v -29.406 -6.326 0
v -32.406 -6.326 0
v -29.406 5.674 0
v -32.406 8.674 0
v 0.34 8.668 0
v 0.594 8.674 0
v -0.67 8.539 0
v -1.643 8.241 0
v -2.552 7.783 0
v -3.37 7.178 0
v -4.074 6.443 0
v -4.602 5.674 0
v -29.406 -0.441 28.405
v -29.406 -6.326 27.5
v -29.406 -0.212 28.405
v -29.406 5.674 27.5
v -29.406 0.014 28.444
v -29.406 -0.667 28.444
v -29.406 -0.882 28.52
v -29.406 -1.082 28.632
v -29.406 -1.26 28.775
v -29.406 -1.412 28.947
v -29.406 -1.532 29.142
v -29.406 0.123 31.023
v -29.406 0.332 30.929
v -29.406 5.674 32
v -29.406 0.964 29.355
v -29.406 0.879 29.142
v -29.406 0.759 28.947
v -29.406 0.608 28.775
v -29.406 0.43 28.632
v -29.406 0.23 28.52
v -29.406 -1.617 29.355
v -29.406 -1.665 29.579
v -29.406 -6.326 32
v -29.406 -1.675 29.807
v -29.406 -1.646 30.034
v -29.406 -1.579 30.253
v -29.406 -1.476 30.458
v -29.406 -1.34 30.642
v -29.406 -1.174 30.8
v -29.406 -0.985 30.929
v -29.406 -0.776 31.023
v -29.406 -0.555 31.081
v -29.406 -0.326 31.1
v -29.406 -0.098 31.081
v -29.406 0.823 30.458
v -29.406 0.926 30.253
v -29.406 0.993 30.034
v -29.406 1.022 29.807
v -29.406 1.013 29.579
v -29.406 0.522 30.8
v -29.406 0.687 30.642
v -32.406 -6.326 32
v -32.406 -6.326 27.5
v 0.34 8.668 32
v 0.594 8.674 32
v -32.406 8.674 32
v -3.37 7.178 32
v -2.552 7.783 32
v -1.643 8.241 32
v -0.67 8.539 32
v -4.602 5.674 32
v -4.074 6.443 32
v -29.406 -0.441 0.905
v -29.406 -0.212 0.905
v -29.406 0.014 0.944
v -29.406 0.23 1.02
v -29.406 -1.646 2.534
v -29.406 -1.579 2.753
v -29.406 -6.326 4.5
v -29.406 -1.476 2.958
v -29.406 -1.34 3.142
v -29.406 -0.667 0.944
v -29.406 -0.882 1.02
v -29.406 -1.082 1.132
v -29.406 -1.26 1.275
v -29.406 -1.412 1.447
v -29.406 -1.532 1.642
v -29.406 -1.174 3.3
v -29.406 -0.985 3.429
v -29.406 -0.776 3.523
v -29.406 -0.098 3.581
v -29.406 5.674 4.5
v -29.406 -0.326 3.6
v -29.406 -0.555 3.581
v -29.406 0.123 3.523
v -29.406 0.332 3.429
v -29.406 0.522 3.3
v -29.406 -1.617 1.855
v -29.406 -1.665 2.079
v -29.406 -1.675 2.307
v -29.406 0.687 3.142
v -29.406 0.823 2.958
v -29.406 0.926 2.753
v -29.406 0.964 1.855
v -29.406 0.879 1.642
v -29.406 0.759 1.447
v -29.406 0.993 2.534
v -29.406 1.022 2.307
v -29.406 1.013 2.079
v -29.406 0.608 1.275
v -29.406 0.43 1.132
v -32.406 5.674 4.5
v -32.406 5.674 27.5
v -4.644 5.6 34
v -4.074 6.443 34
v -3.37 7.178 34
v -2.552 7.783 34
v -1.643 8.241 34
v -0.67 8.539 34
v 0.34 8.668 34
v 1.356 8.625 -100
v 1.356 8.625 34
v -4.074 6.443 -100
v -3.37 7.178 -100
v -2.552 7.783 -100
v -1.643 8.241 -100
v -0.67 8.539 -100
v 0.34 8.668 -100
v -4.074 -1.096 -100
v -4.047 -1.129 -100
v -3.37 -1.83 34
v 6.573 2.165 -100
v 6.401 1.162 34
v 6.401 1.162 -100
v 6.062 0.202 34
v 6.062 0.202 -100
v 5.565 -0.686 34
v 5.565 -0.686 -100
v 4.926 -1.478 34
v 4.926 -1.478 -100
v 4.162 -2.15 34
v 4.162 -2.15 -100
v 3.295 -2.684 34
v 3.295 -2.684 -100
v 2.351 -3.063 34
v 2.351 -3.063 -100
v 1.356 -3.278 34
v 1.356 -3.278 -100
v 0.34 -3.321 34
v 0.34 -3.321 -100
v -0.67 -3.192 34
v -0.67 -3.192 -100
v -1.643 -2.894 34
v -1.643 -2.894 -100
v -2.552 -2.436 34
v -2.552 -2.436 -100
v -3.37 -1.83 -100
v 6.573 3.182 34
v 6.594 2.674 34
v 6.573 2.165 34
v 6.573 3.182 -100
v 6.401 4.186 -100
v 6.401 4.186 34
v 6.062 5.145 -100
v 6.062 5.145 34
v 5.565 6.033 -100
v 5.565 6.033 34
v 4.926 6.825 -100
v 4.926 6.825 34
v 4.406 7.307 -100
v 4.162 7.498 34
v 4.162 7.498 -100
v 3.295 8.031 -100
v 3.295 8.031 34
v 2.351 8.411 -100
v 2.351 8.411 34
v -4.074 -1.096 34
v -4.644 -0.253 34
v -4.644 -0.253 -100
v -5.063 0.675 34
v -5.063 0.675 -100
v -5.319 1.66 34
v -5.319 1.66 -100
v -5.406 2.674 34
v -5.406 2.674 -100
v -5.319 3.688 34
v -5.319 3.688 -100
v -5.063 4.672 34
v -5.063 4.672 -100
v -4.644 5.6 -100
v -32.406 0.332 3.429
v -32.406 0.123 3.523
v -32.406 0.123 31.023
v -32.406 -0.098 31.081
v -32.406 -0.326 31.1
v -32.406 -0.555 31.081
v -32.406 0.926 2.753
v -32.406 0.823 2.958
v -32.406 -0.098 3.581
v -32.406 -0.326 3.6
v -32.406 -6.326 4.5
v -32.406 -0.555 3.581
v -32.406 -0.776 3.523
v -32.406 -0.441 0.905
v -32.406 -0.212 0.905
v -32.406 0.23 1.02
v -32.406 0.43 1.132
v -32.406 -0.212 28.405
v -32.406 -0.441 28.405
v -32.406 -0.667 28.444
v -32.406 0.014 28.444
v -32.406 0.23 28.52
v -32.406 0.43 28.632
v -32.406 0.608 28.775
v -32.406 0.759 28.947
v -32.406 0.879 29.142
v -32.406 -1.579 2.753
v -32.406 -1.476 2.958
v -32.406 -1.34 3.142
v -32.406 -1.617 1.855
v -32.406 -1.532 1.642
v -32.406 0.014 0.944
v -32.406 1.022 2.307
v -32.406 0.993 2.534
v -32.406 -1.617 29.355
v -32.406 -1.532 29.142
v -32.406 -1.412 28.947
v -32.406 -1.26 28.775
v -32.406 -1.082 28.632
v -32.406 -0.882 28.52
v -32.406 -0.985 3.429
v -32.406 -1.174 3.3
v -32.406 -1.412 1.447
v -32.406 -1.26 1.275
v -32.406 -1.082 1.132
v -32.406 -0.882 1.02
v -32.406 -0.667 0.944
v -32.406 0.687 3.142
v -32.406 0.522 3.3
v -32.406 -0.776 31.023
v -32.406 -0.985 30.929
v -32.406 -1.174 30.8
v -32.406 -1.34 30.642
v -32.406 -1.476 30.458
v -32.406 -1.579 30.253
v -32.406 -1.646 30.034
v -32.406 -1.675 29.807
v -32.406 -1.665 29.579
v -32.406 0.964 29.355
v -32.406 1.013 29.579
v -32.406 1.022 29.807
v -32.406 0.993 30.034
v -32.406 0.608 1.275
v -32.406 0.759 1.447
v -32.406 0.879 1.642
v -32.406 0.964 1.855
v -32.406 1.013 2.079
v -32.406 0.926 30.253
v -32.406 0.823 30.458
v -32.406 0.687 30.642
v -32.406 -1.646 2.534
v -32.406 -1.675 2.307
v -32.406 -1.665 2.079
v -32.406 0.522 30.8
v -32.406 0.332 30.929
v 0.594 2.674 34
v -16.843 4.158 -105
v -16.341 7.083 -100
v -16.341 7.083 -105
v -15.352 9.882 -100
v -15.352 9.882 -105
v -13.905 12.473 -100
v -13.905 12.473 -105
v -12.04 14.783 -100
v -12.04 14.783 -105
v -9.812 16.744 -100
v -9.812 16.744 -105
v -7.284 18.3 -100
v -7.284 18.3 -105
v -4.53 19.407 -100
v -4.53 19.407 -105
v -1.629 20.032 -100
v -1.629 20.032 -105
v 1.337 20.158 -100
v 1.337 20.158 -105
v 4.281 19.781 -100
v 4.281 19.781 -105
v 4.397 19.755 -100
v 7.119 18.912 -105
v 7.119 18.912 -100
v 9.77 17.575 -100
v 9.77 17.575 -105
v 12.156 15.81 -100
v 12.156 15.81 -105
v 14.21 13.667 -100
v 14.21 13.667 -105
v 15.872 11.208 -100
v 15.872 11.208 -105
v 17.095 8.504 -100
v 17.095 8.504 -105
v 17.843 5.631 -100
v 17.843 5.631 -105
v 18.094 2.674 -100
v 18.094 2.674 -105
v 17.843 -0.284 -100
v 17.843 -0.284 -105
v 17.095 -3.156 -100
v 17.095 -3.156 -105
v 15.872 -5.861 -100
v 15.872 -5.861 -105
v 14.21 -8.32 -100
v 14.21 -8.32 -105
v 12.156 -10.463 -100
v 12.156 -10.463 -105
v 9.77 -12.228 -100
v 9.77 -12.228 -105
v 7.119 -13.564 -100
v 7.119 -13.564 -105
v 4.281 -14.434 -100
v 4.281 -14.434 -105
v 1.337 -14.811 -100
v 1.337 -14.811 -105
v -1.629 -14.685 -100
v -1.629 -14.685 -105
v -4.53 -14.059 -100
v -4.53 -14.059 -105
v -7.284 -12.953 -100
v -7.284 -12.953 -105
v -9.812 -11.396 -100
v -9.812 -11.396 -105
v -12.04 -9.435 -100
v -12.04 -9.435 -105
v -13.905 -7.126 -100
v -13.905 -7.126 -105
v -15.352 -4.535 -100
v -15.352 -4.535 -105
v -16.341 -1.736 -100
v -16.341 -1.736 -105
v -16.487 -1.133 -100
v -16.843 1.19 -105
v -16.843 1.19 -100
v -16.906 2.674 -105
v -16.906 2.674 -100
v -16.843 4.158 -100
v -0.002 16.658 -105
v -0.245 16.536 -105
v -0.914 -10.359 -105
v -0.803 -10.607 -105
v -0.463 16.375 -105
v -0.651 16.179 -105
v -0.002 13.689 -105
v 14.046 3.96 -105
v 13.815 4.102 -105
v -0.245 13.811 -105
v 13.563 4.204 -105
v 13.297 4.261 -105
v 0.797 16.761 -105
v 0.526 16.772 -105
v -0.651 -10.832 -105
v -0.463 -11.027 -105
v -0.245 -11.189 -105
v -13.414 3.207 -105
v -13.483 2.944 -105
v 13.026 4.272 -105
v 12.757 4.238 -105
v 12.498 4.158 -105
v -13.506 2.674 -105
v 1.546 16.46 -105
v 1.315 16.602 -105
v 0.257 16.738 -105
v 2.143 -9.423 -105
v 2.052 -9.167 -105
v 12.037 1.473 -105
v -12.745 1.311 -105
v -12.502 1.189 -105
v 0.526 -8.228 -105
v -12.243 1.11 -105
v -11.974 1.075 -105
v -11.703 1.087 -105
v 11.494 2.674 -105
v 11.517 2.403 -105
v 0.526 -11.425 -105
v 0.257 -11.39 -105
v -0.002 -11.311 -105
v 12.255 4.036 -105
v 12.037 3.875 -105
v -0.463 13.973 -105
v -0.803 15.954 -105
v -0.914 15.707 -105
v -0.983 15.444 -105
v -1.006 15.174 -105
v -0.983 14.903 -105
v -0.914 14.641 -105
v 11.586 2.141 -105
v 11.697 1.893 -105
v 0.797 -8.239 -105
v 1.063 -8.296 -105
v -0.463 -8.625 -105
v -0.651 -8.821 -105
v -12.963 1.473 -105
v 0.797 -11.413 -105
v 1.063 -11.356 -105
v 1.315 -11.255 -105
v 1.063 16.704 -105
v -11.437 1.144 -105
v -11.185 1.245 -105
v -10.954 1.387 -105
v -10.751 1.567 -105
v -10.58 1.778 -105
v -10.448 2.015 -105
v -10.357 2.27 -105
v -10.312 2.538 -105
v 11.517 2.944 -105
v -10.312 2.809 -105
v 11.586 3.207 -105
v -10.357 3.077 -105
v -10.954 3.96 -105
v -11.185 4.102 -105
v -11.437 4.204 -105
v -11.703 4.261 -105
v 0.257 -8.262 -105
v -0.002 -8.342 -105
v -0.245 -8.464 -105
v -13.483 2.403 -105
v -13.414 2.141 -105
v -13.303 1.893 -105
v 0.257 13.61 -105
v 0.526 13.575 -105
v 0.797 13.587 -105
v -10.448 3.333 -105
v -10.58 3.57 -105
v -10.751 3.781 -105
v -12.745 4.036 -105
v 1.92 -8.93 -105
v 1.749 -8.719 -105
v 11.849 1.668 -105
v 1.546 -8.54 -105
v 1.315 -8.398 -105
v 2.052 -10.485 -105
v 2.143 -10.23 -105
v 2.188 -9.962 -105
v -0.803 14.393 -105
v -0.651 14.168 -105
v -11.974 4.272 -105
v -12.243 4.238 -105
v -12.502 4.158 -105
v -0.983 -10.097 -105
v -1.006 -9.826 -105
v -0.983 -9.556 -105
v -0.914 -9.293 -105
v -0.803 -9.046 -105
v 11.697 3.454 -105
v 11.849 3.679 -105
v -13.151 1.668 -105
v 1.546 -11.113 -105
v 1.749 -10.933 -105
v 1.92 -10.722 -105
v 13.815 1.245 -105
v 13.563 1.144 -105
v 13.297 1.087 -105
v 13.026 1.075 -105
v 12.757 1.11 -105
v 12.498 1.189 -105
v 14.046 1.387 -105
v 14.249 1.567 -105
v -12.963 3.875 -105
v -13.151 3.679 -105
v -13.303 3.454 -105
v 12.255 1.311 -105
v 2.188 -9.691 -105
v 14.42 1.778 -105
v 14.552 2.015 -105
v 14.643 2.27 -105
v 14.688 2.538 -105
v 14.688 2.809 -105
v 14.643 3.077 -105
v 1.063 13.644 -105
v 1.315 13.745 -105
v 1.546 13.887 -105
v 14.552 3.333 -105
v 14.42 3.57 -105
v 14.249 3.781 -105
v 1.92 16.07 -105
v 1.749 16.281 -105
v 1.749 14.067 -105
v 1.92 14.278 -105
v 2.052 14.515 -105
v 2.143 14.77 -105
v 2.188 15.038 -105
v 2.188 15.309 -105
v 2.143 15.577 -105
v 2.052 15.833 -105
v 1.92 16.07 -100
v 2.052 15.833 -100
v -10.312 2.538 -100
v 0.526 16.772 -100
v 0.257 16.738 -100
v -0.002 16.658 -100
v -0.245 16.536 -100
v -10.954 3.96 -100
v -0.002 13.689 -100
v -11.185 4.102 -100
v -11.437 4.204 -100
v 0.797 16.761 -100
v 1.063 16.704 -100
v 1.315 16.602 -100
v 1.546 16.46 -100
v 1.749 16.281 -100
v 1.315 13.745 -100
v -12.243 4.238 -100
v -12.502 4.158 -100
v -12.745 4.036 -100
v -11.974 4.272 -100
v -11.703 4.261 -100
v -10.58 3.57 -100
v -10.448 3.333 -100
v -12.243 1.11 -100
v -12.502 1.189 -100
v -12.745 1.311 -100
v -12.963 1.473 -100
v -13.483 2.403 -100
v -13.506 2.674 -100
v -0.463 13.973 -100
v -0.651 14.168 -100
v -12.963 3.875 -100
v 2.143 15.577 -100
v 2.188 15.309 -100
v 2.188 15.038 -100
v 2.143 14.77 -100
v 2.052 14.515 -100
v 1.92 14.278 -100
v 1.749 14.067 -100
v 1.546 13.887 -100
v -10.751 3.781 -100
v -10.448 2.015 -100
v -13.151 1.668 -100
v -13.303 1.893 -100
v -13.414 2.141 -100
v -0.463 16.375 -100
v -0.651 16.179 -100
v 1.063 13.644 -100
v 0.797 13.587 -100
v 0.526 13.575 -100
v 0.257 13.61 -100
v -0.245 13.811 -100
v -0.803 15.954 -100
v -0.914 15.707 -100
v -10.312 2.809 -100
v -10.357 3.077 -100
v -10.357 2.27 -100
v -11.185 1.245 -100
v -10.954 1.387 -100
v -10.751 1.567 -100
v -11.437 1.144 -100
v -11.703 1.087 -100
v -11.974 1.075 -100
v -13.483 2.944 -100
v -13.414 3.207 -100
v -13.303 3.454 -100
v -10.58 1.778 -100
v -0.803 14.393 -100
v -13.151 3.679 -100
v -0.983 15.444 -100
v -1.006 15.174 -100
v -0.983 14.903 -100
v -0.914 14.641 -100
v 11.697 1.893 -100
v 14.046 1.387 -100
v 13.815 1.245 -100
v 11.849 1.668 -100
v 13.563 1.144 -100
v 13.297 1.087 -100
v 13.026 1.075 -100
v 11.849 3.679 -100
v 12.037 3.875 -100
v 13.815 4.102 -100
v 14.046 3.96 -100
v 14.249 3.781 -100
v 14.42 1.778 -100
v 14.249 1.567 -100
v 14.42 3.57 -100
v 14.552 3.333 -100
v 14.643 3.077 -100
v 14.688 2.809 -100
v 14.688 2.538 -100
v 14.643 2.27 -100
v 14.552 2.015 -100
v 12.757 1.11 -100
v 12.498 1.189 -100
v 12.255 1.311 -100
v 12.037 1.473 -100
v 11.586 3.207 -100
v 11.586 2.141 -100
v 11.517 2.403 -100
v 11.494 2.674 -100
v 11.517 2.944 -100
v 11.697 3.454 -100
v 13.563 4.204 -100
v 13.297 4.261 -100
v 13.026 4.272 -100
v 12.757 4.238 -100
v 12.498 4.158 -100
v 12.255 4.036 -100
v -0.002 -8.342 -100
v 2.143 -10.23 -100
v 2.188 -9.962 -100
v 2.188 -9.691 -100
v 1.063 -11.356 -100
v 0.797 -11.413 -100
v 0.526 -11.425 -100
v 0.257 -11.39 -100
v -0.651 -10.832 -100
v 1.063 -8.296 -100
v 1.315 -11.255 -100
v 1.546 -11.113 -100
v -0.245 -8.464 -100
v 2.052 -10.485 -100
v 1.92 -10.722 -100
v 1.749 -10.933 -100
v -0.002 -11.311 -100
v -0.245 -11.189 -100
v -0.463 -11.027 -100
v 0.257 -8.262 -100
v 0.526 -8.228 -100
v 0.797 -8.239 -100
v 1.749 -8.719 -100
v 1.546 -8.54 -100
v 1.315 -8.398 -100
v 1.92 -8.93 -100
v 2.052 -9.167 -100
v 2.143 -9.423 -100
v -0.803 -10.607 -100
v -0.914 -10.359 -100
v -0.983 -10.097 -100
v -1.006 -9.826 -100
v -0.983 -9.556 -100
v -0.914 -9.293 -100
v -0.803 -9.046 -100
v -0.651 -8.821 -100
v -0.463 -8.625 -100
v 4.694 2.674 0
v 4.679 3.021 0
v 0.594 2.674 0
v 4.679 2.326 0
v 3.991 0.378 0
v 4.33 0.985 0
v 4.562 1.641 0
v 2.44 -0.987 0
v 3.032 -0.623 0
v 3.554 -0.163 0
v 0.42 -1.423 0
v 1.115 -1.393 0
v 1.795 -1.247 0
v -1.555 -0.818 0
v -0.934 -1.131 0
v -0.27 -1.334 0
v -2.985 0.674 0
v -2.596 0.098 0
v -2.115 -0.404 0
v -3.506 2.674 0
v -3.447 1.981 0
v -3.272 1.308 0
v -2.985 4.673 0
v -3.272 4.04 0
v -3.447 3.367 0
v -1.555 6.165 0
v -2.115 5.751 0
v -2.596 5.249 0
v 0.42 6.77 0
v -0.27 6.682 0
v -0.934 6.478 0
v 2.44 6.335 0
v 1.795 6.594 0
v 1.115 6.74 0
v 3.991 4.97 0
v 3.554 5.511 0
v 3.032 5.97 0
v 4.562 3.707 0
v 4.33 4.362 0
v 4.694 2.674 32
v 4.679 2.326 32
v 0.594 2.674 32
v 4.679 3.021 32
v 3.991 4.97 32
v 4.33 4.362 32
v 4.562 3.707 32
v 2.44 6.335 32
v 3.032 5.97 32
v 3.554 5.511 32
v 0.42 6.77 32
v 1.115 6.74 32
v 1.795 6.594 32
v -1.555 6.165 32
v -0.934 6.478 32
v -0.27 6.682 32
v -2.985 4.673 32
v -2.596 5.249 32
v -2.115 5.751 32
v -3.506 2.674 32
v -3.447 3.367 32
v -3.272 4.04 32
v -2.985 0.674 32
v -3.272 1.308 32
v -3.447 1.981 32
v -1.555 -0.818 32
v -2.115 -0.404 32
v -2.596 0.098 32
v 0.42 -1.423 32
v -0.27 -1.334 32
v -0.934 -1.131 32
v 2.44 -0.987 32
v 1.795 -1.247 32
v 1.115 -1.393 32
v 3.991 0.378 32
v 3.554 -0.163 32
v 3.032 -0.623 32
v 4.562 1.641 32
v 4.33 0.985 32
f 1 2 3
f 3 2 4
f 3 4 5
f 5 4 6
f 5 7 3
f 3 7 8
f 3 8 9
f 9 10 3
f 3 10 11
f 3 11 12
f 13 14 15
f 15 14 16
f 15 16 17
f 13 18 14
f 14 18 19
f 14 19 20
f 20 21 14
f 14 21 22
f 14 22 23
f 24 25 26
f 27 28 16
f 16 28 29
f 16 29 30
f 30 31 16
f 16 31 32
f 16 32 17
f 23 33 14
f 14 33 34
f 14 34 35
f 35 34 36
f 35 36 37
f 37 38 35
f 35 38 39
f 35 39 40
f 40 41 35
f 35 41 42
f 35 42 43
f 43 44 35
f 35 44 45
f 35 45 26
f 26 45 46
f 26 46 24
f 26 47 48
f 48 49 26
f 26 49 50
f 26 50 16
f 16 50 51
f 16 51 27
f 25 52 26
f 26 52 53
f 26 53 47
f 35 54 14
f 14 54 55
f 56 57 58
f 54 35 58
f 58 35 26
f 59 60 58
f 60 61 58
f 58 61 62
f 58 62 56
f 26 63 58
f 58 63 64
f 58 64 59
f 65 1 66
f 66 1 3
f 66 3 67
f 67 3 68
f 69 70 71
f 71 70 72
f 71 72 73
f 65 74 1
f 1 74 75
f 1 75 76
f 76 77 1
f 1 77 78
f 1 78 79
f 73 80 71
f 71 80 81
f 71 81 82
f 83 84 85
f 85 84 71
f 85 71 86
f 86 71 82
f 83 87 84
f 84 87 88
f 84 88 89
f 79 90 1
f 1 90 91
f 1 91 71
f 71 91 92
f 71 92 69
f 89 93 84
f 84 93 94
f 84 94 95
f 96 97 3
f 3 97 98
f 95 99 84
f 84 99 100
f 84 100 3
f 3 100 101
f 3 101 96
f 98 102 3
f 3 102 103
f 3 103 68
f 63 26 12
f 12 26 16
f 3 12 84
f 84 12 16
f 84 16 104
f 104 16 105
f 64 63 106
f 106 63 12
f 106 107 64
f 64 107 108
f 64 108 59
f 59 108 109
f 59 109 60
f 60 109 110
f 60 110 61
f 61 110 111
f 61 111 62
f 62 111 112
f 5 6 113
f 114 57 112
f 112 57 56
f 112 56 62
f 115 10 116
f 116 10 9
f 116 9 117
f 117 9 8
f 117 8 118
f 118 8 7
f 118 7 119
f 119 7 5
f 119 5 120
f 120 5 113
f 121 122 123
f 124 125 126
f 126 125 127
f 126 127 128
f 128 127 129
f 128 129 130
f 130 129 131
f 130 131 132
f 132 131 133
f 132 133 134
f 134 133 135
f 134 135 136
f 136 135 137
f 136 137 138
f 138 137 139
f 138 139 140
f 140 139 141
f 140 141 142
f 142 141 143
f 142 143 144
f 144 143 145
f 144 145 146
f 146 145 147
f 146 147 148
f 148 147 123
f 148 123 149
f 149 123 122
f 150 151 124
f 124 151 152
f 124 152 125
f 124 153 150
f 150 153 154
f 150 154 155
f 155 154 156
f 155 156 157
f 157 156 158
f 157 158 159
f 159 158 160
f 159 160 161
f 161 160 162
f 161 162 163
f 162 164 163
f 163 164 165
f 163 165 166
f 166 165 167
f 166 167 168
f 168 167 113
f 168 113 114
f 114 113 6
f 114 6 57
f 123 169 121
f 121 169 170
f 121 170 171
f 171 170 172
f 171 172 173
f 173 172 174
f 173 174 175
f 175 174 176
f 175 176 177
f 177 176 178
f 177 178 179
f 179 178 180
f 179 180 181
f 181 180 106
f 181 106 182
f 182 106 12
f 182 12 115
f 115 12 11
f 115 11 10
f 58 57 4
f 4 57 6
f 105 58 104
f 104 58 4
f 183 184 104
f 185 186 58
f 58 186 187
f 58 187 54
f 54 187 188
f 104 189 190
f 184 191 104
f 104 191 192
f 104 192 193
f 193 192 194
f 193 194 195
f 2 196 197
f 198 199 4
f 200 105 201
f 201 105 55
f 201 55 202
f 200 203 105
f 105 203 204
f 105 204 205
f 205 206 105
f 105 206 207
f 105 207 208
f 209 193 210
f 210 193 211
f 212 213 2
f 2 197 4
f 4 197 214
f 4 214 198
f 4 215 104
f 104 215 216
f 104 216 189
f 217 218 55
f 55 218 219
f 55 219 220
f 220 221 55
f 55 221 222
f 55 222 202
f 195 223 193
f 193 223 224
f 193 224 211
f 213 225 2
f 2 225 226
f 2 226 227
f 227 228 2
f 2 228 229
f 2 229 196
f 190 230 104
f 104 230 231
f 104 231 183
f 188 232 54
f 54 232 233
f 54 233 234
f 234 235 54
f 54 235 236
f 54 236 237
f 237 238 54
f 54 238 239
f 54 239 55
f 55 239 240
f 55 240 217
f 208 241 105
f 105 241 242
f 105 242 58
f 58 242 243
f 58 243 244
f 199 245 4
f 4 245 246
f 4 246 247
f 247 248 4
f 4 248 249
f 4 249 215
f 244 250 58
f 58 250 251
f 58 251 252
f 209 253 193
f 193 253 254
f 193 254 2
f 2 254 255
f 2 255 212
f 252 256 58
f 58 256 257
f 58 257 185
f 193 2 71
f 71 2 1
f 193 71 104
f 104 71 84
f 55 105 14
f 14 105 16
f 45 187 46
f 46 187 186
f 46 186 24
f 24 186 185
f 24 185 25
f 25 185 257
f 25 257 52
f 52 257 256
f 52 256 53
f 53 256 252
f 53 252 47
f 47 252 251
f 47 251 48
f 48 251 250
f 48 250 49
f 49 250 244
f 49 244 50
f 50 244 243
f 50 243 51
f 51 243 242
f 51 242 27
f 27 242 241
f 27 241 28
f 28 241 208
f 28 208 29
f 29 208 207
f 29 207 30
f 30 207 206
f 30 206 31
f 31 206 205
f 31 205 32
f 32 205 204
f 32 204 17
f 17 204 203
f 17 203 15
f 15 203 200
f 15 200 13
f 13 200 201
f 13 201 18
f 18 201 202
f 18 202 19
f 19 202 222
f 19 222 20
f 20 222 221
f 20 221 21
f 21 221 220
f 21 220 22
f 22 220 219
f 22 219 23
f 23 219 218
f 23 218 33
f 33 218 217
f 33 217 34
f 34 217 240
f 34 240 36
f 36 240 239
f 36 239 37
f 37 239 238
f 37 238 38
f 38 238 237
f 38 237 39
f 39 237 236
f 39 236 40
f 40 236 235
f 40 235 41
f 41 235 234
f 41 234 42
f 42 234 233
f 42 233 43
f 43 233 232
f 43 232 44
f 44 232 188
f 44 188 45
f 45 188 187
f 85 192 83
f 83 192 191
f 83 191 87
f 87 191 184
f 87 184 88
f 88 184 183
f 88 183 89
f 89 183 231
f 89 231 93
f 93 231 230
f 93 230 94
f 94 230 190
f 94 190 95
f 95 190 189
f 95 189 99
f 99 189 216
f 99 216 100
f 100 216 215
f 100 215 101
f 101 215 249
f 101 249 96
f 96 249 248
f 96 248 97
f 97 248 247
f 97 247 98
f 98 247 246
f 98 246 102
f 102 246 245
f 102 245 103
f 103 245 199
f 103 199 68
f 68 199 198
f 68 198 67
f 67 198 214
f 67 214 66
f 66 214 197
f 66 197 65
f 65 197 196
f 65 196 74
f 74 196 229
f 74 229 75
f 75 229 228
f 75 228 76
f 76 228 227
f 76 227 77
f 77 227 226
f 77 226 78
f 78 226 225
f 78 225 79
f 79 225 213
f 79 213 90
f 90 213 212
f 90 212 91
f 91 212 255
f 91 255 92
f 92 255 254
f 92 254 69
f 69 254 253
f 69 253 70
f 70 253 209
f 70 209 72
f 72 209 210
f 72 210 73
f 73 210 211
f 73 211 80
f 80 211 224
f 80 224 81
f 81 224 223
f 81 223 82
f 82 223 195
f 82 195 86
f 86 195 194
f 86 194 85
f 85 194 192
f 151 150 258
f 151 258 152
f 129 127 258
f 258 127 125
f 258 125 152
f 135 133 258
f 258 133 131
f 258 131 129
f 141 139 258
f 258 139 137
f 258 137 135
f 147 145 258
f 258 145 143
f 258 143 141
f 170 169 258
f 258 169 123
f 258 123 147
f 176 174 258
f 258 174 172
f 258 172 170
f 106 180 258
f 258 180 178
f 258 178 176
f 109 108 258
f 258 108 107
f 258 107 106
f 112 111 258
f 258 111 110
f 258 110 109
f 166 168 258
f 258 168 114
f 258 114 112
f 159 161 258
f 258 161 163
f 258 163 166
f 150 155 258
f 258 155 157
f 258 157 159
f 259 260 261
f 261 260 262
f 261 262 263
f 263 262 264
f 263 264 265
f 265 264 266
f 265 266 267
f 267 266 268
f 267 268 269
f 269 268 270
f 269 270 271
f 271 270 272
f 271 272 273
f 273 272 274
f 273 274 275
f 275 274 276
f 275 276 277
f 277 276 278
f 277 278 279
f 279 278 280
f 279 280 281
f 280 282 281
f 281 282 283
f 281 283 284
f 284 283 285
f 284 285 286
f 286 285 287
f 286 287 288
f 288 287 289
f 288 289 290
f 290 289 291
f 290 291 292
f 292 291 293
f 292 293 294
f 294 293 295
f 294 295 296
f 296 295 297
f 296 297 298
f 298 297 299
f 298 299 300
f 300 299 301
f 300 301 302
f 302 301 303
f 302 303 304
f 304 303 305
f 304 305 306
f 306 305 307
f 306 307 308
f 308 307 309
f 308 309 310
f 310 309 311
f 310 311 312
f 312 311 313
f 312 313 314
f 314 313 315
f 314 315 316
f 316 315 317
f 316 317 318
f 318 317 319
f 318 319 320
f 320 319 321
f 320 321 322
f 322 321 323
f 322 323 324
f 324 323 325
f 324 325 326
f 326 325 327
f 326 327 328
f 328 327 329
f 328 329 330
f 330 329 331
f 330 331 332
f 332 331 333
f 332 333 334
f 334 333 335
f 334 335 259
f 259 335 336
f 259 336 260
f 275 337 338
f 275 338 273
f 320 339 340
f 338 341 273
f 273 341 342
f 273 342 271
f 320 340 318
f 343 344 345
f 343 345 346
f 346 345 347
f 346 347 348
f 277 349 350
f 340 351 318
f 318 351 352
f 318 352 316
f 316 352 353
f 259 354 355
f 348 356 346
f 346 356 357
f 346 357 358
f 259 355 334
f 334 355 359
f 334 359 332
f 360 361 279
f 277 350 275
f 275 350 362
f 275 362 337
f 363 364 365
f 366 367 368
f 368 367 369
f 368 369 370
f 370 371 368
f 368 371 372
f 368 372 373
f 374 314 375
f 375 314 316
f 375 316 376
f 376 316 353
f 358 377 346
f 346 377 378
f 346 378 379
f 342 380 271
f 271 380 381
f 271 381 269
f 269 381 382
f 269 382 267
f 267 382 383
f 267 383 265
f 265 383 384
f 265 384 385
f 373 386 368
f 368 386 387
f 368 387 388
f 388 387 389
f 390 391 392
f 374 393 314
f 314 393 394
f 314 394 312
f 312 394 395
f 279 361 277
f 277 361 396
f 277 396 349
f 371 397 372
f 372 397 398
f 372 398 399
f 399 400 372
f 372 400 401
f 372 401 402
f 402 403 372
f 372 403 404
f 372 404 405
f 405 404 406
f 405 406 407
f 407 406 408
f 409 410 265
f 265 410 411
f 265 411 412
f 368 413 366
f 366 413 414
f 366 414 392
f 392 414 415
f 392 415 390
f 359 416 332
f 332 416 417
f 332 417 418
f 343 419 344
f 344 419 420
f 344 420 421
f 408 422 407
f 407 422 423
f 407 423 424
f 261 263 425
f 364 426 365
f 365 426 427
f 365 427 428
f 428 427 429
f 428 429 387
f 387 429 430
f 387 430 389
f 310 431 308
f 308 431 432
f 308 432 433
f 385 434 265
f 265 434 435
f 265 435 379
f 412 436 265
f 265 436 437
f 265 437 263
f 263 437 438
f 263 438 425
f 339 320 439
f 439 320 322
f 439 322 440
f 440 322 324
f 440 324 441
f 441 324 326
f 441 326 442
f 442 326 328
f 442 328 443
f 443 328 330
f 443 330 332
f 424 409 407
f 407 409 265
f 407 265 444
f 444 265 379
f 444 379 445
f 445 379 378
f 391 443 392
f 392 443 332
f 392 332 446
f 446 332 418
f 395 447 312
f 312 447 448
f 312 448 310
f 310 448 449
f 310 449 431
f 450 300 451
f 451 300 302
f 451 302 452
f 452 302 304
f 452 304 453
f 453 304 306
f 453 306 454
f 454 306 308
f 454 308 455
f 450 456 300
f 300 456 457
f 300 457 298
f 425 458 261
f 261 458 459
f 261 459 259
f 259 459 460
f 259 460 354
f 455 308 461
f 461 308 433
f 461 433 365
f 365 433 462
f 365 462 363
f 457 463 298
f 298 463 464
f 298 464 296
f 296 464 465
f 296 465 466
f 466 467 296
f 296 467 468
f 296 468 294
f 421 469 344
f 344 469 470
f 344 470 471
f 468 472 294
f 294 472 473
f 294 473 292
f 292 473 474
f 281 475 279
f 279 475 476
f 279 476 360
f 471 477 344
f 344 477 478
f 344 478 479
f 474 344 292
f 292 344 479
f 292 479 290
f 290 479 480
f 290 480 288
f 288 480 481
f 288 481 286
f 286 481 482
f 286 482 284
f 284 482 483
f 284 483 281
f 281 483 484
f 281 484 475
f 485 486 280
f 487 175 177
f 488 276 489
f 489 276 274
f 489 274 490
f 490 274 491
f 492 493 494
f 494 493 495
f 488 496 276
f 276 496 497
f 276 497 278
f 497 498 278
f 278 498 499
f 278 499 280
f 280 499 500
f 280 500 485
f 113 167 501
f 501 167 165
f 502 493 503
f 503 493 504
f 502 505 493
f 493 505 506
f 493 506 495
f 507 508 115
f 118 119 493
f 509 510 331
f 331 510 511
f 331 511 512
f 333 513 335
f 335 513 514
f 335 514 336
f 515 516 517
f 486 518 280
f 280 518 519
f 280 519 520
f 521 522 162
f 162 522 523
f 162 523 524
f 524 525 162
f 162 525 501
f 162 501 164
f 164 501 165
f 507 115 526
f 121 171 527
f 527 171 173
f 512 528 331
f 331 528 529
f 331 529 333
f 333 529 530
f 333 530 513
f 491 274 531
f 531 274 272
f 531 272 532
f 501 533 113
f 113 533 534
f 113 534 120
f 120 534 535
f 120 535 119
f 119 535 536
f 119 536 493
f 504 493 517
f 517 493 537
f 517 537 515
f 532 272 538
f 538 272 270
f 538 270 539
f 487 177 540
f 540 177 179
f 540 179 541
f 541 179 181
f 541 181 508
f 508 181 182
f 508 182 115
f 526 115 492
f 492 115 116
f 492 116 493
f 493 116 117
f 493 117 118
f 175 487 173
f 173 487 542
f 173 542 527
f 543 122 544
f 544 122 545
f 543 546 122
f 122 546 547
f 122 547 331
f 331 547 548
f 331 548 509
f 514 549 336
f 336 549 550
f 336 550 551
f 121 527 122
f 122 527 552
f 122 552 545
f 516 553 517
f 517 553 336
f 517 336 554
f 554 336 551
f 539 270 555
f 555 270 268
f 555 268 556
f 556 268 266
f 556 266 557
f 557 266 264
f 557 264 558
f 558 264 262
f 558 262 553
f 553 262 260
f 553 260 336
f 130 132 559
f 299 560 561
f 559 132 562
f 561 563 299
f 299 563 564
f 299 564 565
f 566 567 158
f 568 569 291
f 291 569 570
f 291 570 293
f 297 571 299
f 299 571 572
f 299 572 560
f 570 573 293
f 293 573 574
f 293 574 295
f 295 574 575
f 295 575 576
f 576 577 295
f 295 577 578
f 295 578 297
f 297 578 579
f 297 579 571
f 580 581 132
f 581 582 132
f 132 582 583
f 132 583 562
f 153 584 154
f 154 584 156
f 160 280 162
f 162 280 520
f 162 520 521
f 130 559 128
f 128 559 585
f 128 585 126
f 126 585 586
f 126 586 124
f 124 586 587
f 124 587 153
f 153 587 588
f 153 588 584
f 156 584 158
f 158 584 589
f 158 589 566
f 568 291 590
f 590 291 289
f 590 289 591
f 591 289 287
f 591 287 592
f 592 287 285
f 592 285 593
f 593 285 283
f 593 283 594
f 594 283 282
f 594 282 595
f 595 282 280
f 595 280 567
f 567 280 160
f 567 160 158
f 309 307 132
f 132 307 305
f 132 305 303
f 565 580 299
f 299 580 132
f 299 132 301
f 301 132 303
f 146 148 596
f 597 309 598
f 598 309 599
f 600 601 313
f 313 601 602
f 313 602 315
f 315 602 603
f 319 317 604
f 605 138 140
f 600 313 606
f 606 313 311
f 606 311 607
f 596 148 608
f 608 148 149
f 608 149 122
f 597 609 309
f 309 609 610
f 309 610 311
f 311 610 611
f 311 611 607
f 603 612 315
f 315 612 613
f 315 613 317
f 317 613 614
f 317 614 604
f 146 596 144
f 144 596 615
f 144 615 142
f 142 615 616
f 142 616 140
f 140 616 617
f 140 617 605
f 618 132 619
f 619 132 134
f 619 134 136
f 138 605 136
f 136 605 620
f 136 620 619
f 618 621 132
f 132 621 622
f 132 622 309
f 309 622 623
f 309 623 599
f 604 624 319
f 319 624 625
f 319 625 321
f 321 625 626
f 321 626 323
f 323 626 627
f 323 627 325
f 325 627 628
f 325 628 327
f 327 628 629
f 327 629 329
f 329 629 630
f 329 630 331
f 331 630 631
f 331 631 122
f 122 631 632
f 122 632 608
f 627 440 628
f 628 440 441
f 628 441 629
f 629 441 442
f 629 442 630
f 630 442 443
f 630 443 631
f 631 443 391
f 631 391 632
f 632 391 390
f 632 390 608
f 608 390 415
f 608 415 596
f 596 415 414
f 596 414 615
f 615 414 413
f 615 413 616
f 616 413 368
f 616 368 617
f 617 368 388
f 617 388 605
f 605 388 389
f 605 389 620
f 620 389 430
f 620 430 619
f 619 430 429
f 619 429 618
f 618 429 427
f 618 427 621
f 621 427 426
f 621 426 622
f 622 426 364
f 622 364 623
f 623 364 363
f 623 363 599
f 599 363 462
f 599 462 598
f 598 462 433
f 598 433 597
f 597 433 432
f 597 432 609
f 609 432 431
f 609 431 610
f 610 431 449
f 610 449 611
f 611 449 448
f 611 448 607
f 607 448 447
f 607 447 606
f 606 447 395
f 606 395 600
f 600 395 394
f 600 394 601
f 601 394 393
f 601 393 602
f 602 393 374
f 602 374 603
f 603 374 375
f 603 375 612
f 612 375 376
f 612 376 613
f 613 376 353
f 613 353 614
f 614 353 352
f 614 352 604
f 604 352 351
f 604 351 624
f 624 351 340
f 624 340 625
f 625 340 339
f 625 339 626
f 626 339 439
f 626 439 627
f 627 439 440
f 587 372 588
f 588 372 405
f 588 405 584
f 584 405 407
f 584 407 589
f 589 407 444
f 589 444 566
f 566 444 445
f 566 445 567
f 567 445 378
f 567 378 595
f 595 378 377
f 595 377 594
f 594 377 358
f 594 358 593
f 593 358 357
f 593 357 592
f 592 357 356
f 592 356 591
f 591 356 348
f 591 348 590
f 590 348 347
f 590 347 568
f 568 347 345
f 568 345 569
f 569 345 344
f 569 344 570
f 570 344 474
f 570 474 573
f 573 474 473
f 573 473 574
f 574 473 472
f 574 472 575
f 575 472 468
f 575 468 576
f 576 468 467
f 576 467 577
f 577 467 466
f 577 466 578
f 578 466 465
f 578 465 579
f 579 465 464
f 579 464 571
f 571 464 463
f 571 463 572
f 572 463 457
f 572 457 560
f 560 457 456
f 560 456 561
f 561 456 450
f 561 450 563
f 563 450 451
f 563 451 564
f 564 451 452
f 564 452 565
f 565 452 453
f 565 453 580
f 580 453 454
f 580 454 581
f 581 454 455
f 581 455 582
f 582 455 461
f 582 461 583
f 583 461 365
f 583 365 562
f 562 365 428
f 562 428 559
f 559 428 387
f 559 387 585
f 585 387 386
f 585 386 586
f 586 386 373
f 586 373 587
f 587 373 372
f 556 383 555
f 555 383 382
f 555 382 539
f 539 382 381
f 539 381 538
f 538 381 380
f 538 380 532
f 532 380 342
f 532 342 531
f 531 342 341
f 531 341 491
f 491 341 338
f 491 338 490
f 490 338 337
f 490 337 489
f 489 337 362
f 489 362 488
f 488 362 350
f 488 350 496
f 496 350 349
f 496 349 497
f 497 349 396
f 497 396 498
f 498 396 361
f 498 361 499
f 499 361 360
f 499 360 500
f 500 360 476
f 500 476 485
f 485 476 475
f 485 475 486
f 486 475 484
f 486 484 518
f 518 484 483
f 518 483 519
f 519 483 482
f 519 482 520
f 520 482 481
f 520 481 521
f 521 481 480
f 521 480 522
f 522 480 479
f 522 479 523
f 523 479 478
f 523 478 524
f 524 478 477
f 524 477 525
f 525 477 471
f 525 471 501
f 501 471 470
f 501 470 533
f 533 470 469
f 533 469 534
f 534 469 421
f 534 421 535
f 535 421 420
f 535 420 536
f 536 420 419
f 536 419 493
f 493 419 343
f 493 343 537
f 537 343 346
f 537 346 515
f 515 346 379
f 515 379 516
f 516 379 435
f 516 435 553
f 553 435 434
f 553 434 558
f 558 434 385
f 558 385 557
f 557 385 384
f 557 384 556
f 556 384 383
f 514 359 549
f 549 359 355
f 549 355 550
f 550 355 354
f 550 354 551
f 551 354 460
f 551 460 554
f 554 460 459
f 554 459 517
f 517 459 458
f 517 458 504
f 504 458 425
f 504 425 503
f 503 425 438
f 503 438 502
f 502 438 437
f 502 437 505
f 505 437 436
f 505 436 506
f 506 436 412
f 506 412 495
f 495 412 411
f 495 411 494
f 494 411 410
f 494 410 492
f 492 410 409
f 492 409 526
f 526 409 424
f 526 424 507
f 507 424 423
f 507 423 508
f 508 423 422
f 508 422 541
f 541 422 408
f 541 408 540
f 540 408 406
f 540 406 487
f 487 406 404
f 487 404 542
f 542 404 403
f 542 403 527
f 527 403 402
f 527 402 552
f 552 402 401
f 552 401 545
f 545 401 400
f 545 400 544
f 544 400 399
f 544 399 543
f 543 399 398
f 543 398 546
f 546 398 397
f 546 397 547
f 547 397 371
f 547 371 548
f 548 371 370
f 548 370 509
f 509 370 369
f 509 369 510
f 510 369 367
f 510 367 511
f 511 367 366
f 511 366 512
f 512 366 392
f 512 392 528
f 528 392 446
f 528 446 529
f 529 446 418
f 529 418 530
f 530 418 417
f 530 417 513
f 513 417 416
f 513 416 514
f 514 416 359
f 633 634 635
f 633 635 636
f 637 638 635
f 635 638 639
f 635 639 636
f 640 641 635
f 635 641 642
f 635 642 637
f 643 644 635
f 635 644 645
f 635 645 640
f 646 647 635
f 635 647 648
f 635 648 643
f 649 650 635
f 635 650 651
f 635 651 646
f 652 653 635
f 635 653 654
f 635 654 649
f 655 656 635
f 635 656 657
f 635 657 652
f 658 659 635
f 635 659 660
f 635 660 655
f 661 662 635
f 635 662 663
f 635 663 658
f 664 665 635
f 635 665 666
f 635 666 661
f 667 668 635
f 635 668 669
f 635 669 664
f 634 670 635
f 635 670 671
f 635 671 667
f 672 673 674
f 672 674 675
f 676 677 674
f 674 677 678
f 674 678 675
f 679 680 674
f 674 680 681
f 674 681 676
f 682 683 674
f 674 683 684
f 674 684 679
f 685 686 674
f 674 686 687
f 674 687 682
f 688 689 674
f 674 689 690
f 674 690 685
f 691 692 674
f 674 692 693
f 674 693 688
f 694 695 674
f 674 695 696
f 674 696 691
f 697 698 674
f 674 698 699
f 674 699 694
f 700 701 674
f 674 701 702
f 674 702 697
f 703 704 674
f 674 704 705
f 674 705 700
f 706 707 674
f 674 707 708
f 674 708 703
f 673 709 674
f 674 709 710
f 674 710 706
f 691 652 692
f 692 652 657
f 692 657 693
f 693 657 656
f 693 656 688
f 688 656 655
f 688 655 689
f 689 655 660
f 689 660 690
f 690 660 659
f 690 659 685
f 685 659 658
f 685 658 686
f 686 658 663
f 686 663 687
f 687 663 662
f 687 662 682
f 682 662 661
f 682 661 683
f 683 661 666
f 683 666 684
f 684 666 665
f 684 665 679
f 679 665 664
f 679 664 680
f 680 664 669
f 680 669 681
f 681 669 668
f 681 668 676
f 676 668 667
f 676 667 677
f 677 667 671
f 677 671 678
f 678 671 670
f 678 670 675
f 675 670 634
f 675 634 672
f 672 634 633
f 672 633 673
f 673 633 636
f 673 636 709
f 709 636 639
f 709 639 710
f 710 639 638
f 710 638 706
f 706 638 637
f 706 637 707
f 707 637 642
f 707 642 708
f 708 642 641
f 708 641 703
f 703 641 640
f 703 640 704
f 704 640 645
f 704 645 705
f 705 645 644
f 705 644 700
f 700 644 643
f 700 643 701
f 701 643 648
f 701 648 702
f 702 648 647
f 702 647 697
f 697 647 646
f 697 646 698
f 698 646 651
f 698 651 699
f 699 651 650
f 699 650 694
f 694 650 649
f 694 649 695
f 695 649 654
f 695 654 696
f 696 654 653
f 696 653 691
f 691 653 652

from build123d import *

# Parameters (mm, degrees)
SKETCH_1_R          = 4.1
EXTRUDE_1_DEPTH     = 32
SKETCH_3_R          = 1.35
SKETCH_3_W          = 23
SKETCH_3_H          = 12
CUT_EXTRUDE_1_DEPTH = 5
SKETCH_5_R          = 6
EXTRUDE_2_DEPTH     = 2
SKETCH_6_R          = 6
EXTRUDE_3_DEPTH     = 100
SKETCH_7_R          = 17.5
EXTRUDE_4_DEPTH     = 5
SKETCH_9_R          = 1.6
CUT_EXTRUDE_3_DEPTH = 140


with BuildPart() as part:
    # 草图1 → 凸台-拉伸1 (new body)
    with BuildSketch(Plane.XY):
        with BuildLine():
            Line((-32.405771928, 8.673637409), (-5.405771928, 8.673637409))
            Line((-5.405771928, 8.673637409), (0.594228072, 8.673637409))
            ThreePointArc((0.594228072, 8.673637409), (3.594228072, -2.522515014), (-4.601924351, 5.673637409))
            Line((-4.601924351, 5.673637409), (-29.405771928, 5.673637409))
            Line((-29.405771928, 5.673637409), (-29.405771928, -6.326362591))
            Line((-29.405771928, -6.326362591), (-32.405771928, -6.326362591))
            Line((-32.405771928, -6.326362591), (-32.405771928, 5.673637409))
            Line((-32.405771928, 5.673637409), (-32.405771928, 8.673637409))
        make_face()
        with Locations((0.594228072, 2.673637409)):
            Circle(SKETCH_1_R, mode=Mode.SUBTRACT)
    extrude(amount=EXTRUDE_1_DEPTH)

    # 草图3 → 切除-拉伸1 (cut)
    with BuildSketch(Plane.ZY.offset(32.405771928)):
        with Locations((29.75, -0.326362591)):
            Circle(SKETCH_3_R)
        with Locations((2.25, -0.326362591)):
            Circle(SKETCH_3_R)
        with Locations((16, -0.326362591)):
            Rectangle(SKETCH_3_W, SKETCH_3_H)
    extrude(amount=-CUT_EXTRUDE_1_DEPTH, mode=Mode.SUBTRACT)

    # 草图5 → 凸台-拉伸2 (add)
    with BuildSketch(Plane.XY.offset(32)):
        with Locations((0.594228072, 2.673637409)):
            Circle(SKETCH_5_R)
    extrude(amount=EXTRUDE_2_DEPTH)

    # 草图6 → 凸台-拉伸3 (add)
    with BuildSketch(Plane(origin=(0, 0, 0), x_dir=(-1, 0, 0), z_dir=(0, 0, -1))):
        with Locations((-0.594228072, 2.673637409)):
            Circle(SKETCH_6_R)
    extrude(amount=EXTRUDE_3_DEPTH)

    # 草图7 → 凸台-拉伸4 (add)
    with BuildSketch(Plane(origin=(0, 0, -100), x_dir=(-1, 0, 0), z_dir=(0, 0, -1))):
        with Locations((-0.594228072, 2.673637409)):
            Circle(SKETCH_7_R)
    extrude(amount=EXTRUDE_4_DEPTH)

    # 草图9 → 切除-拉伸3 (cut, through all)
    with BuildSketch(Plane(origin=(0, 0, -105), x_dir=(-1, 0, 0), z_dir=(0, 0, -1))):
        with Locations((11.905771928, 2.673637409)):
            Circle(SKETCH_9_R)
        with Locations((-0.594228072, 15.173637409)):
            Circle(SKETCH_9_R)
        with Locations((-13.094228072, 2.673637409)):
            Circle(SKETCH_9_R)
        with Locations((-0.594228072, -9.826362591)):
            Circle(SKETCH_9_R)
    extrude(amount=-CUT_EXTRUDE_3_DEPTH, mode=Mode.SUBTRACT)


solid = part.part
